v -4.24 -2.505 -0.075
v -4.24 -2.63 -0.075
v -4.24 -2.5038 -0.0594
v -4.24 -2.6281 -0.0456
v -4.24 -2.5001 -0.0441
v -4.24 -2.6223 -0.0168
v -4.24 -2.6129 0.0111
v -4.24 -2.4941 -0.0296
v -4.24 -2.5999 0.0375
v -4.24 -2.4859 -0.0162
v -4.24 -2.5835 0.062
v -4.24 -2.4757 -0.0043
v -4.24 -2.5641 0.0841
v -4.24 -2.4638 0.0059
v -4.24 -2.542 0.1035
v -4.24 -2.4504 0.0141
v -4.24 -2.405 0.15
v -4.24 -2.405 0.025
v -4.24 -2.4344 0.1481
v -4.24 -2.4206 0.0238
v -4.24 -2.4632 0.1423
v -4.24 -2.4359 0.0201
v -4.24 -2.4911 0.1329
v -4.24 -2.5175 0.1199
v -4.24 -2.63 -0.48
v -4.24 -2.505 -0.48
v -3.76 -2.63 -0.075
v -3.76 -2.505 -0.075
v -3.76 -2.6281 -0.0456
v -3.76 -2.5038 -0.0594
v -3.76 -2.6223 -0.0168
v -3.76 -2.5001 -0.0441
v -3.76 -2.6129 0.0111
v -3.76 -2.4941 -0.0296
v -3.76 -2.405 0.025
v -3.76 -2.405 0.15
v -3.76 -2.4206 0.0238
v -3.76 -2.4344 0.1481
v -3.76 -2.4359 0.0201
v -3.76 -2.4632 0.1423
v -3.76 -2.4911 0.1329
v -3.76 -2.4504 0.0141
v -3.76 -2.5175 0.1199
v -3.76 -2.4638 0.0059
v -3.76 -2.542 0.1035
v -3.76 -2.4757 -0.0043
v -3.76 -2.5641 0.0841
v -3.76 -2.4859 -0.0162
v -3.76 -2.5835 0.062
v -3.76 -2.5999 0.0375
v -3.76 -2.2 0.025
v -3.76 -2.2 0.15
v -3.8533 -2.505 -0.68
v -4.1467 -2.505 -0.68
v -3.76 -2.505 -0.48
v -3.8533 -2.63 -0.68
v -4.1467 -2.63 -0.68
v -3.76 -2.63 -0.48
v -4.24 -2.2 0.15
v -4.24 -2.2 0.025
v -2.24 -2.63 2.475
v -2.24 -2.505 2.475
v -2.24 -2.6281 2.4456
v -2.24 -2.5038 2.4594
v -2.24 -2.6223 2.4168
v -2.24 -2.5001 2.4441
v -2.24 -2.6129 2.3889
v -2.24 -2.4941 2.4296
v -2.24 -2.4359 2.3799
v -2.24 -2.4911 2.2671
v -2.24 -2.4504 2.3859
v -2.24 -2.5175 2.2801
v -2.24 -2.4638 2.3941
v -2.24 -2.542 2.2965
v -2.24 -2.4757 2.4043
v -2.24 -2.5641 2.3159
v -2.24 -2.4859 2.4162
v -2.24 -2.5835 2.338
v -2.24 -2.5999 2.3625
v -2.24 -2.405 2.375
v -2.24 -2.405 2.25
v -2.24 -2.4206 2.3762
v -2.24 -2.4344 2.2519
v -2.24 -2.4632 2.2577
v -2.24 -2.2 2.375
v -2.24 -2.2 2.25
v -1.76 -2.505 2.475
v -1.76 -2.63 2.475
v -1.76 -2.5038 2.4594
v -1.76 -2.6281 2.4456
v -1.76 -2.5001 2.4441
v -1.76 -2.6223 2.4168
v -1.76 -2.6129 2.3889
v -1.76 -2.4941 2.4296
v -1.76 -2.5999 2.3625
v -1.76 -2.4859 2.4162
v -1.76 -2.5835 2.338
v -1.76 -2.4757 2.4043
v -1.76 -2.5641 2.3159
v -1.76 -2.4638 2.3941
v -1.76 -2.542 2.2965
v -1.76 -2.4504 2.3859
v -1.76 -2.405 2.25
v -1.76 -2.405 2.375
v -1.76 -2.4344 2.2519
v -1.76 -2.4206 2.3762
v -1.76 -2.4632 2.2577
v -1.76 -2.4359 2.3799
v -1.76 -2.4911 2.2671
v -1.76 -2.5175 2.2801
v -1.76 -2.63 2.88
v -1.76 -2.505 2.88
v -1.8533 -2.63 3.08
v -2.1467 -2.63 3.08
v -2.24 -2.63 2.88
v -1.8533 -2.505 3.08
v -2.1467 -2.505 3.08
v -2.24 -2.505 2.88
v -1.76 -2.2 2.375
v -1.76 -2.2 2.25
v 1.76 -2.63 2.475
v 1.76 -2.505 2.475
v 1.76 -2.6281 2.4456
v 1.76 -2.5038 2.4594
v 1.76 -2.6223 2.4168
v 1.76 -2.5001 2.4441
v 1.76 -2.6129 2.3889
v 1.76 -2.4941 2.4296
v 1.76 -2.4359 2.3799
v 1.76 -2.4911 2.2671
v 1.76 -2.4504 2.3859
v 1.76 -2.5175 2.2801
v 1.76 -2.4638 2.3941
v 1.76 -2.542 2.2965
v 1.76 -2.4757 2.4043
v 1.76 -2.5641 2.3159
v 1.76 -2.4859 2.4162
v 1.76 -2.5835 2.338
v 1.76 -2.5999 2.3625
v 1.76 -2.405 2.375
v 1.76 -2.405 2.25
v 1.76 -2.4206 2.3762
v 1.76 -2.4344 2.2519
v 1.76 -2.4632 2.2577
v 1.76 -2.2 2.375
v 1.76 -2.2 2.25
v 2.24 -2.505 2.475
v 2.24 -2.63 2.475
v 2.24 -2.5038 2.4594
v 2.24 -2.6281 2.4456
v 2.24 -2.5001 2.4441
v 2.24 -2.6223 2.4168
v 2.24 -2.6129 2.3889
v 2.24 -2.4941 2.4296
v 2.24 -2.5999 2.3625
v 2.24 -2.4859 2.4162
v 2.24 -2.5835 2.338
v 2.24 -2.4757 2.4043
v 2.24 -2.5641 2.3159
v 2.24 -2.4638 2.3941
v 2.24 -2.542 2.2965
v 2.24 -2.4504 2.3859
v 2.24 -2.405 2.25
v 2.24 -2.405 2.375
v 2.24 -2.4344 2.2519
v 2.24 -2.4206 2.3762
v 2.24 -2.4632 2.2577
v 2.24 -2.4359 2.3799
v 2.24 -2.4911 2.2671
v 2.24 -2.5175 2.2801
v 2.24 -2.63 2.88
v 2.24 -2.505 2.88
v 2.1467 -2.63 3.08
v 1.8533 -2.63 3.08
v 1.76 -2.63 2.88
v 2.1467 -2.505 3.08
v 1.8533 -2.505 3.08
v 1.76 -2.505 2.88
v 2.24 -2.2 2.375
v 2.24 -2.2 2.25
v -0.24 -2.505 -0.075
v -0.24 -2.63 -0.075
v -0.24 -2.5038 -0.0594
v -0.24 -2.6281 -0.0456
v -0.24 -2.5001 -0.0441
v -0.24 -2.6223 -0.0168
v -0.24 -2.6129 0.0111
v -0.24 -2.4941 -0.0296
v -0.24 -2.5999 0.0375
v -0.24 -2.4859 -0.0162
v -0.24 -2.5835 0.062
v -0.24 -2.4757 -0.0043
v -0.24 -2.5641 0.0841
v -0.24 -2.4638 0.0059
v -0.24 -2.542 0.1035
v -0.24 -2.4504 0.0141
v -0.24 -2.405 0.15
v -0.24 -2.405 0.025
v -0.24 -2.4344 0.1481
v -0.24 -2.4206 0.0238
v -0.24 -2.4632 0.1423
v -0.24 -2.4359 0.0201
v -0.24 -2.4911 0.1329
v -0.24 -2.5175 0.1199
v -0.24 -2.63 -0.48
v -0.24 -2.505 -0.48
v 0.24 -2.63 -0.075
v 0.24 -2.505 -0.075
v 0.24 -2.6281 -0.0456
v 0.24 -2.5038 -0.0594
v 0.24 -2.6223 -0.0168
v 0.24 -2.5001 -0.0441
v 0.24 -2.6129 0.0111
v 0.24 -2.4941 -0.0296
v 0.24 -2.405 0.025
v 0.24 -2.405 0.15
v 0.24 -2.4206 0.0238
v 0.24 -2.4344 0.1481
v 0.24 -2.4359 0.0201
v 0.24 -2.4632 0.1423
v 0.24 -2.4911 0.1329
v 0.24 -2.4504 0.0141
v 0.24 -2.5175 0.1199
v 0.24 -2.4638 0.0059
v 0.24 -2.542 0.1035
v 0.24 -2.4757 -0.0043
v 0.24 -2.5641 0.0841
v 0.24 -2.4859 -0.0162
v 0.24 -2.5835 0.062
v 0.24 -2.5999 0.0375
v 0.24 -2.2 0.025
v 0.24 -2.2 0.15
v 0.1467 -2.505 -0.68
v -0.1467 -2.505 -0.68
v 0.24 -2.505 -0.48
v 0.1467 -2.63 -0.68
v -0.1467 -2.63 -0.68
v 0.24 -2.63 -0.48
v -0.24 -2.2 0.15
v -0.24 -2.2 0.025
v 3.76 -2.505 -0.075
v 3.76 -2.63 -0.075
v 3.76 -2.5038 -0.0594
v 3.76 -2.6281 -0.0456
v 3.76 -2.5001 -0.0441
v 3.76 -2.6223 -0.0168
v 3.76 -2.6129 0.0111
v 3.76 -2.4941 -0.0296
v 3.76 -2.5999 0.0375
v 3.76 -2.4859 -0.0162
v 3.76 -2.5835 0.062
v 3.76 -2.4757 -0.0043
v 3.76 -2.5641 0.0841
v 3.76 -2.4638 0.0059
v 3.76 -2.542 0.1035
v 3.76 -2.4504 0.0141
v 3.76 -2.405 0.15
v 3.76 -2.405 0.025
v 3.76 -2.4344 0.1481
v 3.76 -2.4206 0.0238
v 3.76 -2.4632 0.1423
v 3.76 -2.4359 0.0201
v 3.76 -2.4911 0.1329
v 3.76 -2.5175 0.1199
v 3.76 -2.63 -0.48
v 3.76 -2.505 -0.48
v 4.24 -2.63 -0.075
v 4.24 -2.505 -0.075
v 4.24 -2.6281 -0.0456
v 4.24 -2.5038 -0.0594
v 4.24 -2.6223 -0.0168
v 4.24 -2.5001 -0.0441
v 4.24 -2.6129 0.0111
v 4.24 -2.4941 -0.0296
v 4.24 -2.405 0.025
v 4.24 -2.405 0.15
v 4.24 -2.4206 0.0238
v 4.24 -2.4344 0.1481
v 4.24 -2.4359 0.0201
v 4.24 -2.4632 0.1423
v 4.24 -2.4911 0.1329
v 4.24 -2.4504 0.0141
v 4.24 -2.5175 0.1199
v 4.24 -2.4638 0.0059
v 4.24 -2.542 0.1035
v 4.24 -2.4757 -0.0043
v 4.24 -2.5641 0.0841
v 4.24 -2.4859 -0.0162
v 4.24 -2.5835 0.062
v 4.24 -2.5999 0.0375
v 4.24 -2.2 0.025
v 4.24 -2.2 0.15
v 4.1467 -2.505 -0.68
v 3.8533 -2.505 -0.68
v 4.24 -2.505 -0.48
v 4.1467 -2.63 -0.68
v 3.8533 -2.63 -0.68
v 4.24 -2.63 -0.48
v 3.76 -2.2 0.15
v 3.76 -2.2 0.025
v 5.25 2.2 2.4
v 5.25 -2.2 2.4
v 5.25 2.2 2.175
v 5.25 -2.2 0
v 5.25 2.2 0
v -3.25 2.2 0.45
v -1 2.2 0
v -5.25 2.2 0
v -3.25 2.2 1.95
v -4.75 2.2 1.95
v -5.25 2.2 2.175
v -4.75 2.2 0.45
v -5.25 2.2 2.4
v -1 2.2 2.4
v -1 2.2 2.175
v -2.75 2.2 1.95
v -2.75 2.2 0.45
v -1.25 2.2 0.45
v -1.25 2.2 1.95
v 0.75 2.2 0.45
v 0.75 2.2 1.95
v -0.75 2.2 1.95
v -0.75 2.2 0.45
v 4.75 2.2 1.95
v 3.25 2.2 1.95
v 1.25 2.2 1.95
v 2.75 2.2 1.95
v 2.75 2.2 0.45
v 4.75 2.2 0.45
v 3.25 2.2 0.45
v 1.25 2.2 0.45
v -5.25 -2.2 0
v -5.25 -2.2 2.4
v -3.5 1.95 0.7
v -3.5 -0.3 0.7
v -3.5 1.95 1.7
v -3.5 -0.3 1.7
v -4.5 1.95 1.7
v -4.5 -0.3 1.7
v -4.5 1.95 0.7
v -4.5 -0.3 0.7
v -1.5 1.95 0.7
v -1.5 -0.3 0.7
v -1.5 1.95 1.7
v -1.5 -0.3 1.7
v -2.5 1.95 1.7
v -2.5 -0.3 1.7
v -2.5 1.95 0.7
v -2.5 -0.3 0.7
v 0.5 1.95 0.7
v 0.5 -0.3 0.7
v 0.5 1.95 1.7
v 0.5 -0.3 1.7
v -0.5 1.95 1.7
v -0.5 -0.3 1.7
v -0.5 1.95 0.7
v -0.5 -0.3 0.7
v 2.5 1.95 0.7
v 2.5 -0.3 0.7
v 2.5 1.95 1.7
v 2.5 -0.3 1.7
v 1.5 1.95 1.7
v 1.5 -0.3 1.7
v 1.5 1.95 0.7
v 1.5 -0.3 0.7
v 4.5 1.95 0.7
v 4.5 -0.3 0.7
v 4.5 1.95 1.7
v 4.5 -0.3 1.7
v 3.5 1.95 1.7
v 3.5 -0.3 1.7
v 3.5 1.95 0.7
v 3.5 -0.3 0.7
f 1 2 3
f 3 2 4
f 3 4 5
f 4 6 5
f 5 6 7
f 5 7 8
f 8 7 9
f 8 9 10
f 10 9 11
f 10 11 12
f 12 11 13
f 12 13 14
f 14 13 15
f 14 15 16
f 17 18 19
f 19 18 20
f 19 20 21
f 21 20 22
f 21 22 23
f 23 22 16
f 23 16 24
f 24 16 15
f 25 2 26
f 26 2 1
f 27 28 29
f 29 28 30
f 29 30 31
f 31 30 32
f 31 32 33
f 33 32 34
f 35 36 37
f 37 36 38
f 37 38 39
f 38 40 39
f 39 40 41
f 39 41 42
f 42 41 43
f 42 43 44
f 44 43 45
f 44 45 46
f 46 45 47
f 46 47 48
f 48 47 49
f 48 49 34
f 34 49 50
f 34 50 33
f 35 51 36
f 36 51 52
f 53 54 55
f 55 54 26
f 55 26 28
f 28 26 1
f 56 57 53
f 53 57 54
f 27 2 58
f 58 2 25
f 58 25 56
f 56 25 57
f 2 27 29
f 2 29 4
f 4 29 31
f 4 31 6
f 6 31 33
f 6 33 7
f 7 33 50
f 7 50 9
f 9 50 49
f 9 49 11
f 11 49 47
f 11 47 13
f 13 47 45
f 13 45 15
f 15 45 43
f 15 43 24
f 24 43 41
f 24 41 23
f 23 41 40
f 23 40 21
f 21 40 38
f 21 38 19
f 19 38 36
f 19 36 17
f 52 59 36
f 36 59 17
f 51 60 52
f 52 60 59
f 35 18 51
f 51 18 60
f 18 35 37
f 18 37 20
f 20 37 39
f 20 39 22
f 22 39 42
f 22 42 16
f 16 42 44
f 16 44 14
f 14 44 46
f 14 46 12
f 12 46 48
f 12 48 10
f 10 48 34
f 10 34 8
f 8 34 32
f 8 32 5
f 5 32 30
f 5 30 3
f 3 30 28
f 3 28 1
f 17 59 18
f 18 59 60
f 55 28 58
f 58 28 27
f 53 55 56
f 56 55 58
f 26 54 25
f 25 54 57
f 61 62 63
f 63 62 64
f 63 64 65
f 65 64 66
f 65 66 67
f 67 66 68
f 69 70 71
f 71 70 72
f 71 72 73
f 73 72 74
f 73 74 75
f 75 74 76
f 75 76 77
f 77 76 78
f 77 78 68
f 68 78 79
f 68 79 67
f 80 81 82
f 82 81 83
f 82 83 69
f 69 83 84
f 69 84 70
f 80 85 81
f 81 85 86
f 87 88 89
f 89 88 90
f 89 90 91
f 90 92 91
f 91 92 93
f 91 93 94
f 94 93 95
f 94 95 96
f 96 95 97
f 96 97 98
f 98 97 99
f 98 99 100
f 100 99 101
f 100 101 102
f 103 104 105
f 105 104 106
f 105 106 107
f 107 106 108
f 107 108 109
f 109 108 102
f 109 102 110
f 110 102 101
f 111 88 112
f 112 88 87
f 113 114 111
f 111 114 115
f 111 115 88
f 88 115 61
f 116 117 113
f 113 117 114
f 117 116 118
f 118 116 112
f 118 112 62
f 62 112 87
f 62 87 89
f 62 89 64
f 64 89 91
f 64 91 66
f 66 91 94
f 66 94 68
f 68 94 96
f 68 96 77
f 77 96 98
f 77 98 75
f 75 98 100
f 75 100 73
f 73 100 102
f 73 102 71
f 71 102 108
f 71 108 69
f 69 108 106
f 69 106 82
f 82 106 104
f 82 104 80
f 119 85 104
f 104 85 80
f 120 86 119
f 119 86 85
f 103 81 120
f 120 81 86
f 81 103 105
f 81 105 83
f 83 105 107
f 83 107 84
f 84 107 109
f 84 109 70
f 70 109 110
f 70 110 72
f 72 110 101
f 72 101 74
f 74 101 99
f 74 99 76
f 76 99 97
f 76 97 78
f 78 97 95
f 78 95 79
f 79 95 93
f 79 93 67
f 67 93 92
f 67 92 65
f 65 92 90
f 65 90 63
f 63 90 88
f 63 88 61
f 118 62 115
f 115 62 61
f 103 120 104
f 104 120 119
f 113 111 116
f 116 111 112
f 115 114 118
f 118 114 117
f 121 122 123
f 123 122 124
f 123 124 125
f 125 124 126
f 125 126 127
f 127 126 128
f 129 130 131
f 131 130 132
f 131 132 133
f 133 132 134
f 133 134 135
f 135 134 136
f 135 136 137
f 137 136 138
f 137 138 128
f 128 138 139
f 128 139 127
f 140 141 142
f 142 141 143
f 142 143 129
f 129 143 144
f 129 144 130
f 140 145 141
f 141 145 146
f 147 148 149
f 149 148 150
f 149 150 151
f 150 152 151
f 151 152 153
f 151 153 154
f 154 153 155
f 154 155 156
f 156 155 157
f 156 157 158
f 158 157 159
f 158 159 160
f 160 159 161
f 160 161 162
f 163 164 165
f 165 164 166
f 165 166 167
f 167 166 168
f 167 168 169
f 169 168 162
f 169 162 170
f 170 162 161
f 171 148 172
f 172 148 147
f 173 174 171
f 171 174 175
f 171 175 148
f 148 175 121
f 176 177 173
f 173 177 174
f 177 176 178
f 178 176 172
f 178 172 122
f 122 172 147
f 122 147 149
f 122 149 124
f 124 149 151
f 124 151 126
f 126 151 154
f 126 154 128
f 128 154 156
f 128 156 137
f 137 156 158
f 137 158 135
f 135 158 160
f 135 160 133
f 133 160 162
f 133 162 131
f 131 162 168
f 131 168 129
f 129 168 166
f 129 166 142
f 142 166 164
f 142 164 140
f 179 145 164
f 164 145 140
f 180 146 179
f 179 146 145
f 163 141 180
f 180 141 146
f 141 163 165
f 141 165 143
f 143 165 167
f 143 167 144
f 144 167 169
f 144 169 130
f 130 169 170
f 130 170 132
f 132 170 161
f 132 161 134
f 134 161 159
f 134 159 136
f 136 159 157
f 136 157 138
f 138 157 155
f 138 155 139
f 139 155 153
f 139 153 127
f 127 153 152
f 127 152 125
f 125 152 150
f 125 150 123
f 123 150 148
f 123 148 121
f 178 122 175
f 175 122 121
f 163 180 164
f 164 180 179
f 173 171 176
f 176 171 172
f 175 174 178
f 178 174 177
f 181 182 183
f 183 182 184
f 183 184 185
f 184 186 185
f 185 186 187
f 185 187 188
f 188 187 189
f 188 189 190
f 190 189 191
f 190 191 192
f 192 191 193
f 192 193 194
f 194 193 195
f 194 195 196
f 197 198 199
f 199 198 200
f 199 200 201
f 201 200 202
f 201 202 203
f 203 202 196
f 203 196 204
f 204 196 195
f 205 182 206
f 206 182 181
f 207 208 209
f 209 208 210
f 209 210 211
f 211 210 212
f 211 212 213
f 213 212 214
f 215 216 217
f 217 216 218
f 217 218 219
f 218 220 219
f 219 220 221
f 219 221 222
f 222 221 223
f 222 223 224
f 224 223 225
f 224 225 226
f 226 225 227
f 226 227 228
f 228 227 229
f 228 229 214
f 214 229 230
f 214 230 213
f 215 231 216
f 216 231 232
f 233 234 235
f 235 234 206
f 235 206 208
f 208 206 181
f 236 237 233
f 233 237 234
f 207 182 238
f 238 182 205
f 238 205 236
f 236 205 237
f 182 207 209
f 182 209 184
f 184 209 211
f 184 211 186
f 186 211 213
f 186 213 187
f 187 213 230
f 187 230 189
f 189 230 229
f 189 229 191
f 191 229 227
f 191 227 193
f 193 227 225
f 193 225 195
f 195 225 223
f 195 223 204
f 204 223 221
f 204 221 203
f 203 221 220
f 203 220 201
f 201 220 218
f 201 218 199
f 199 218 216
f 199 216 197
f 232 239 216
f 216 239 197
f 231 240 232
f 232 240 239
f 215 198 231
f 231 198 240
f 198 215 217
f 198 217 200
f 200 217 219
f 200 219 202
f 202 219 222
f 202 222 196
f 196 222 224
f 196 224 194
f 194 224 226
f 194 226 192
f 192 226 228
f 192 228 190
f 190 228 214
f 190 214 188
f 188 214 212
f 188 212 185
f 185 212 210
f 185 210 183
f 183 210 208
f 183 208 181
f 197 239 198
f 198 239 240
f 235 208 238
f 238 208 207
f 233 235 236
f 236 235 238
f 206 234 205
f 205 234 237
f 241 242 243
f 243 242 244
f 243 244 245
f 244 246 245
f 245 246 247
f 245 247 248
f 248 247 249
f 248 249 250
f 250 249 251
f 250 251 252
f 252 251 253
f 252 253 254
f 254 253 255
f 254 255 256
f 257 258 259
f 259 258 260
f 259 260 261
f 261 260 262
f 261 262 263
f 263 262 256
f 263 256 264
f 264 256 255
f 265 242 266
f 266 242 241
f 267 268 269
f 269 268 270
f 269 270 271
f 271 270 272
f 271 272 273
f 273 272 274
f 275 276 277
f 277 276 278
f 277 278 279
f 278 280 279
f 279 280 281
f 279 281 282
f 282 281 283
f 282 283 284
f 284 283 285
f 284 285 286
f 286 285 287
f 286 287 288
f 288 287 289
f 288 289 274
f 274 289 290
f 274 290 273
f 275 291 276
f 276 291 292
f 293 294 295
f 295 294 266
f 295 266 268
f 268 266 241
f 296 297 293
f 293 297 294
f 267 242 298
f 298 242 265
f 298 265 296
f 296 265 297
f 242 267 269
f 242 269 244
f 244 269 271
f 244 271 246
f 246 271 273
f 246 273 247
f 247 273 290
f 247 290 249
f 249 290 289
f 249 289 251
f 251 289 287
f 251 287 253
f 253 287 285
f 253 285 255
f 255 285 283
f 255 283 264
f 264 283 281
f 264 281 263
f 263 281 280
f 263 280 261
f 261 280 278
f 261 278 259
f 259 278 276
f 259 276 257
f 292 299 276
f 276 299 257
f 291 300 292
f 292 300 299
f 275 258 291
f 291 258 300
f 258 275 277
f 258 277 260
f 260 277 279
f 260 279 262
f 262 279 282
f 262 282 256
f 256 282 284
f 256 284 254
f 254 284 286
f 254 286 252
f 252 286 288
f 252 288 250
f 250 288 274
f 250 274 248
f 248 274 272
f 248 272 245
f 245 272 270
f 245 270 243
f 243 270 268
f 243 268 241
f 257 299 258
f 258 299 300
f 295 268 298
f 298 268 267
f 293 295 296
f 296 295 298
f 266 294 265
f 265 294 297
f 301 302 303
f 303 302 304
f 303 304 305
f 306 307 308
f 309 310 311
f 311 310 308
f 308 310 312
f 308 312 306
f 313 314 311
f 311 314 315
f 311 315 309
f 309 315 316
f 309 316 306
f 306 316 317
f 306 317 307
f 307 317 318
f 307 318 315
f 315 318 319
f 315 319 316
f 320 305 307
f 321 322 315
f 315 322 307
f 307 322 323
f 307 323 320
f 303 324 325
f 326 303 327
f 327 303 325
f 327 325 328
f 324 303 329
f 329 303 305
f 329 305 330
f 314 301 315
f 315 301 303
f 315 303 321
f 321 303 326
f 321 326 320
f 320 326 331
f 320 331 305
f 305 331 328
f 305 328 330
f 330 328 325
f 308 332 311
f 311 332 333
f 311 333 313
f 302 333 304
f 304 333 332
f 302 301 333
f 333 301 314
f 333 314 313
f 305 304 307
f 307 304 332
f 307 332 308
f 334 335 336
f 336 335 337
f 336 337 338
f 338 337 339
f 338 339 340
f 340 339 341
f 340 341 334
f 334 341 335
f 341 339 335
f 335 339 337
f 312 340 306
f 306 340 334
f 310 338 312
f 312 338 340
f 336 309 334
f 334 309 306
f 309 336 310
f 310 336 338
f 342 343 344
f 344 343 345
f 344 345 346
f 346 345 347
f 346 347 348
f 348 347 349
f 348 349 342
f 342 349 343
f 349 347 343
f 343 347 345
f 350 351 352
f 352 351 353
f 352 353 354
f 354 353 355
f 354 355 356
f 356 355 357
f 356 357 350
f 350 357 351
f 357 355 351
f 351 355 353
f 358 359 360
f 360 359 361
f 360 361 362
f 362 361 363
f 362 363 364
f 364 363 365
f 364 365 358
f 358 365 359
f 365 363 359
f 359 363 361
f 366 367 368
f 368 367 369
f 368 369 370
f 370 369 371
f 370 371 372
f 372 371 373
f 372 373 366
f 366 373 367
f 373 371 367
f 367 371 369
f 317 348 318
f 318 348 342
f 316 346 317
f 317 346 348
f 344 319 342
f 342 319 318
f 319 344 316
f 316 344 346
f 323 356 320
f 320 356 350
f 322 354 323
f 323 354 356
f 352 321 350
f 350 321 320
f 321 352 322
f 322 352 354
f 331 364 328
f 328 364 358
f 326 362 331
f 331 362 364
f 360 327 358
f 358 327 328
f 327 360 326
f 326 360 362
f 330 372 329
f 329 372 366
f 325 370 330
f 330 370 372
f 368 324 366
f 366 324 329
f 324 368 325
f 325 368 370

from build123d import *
from OCP.BRepFilletAPI import BRepFilletAPI_MakeChamfer

# Parameters (mm, degrees)
SKETCH1_W                  = 10.5
SKETCH1_H                  = 4.4
BOSS_EXTRUDE1_DEPTH        = 2.4
SKETCH2_W                  = 1
SKETCH2_H                  = 1
CUT_EXTRUDE1_DEPTH         = 2.5
CHAMFER1_SIZE              = 0.25
LPATTERN6_COUNT            = 5
LPATTERN6_PITCH            = 2
CHAMFER1_OF_LPATTERN6_SIZE = 0.25
BASE_FLANGE2_DEPTH         = 0.24
BASE_FLANGE2_DEPTH_BACK    = 0.24
BASE_FLANGE3_DEPTH         = 0.24
BASE_FLANGE3_DEPTH_BACK    = 0.24
CHAMFER3_SIZE              = 0.2
CHAMFER3_SIZE2             = 0.093261532
CHAMFER4_SIZE              = 0.2
CHAMFER4_SIZE2             = 0.093261532
LPATTERN4_COUNT            = 3
LPATTERN4_PITCH            = 4
LPATTERN3_COUNT            = 2
LPATTERN3_PITCH            = 4


# Sheet-metal steps are written as plain solids
with BuildPart() as part:
    # Sketch1 → Boss-Extrude1 (new body)
    with BuildSketch(Plane.XY):
        Rectangle(SKETCH1_W, SKETCH1_H)
    extrude(amount=BOSS_EXTRUDE1_DEPTH)

    # Sketch2 → Cut-Extrude1 (cut)
    with BuildSketch(Plane(origin=(0, 2.2, 0), x_dir=(1, 0, 0), z_dir=(0, 1, 0))):
        with Locations((-4, -1.2)):
            Rectangle(SKETCH2_W, SKETCH2_H)
    cut_extrude1 = extrude(amount=-CUT_EXTRUDE1_DEPTH, mode=Mode.SUBTRACT)

    # Chamfer1
    chamfer1_edges = [part.edges().sort_by_distance(p)[0] for p in [
        (-3.5, 2.2, 1.2),
        (-4, 2.2, 0.7),
        (-4.5, 2.2, 1.2),
        (-4, 2.2, 1.7),
    ]]
    chamfer(chamfer1_edges, length=CHAMFER1_SIZE)

    # LPattern6: Cut-Extrude1 ×5
    with Locations(*[(i * LPATTERN6_PITCH, 0, 0) for i in range(1, LPATTERN6_COUNT)]):
        add(cut_extrude1, mode=Mode.SUBTRACT)

    # Chamfer1 of LPattern6
    chamfer1_of_lpattern6_edges = [part.edges().sort_by_distance(p)[0] for p in [
        (-1.5, 2.2, 1.2),
        (-2, 2.2, 0.7),
        (-2.5, 2.2, 1.2),
        (-2, 2.2, 1.7),
        (0.5, 2.2, 1.2),
        (0, 2.2, 0.7),
        (-0.5, 2.2, 1.2),
        (0, 2.2, 1.7),
        (2.5, 2.2, 1.2),
        (2, 2.2, 0.7),
        (1.5, 2.2, 1.2),
        (2, 2.2, 1.7),
        (4.5, 2.2, 1.2),
        (4, 2.2, 0.7),
        (3.5, 2.2, 1.2),
        (4, 2.2, 1.7),
    ]]
    chamfer(chamfer1_of_lpattern6_edges, length=CHAMFER1_OF_LPATTERN6_SIZE)


with BuildPart() as body_2:
    # Sketch5 → Base-Flange2 (new, two sides: drawn at the far end of the back side and taken through both)
    with BuildSketch(Plane.ZY.offset(4).offset(-BASE_FLANGE2_DEPTH_BACK)):
        with BuildLine():
            Line((0.15, -2.2), (0.15, -2.405))
            ThreePointArc((0.15, -2.405), (0.084099026, -2.564099026), (-0.075, -2.63))
            Line((-0.075, -2.63), (-0.68, -2.63))
            Line((-0.68, -2.63), (-0.68, -2.505))
            Line((-0.68, -2.505), (-0.075, -2.505))
            ThreePointArc((-0.075, -2.505), (-0.004289322, -2.475710678), (0.025, -2.405))
            Line((0.025, -2.405), (0.025, -2.2))
            Line((0.025, -2.2), (0.15, -2.2))
        make_face()
    extrude(amount=BASE_FLANGE2_DEPTH + BASE_FLANGE2_DEPTH_BACK)

    # Chamfer4: one chamfer whose edges measure the first distance from different faces: ONE call of the kernel's chamfer builder (chamfer() names one face for all edges)
    chamfer4_edges_1 = [body_2.edges().sort_by_distance(p)[0] for p in [
        (-3.76, -2.5675, -0.68),
    ]]
    chamfer4_side_1 = [body_2.faces().sort_by_distance(p)[0] for p in [
        (-3.76, -2.3025, 0.034347727),
    ]]
    chamfer4_edges_2 = [body_2.edges().sort_by_distance(p)[0] for p in [
        (-4.24, -2.5675, -0.68),
    ]]
    chamfer4_side_2 = [body_2.faces().sort_by_distance(p)[0] for p in [
        (-4.24, -2.3025, 0.034347727),
    ]]
    chamfer4 = BRepFilletAPI_MakeChamfer(body_2.part.solid().wrapped)
    for e in chamfer4_edges_1:
        chamfer4.Add(CHAMFER4_SIZE, CHAMFER4_SIZE2, e.wrapped, chamfer4_side_1[0].wrapped)  # the first distance lies on this face
    for e in chamfer4_edges_2:
        chamfer4.Add(CHAMFER4_SIZE, CHAMFER4_SIZE2, e.wrapped, chamfer4_side_2[0].wrapped)  # the first distance lies on this face
    add(Compound.cast(chamfer4.Shape()), mode=Mode.REPLACE)


with BuildPart() as body_3:
    # Sketch22 → Base-Flange3 (new, two sides: drawn at the far end of the back side and taken through both)
    with BuildSketch(Plane.ZY.offset(2).offset(-BASE_FLANGE3_DEPTH_BACK)):
        with BuildLine():
            Line((2.25, -2.2), (2.25, -2.405))
            ThreePointArc((2.25, -2.405), (2.315900974, -2.564099026), (2.475, -2.63))
            Line((2.475, -2.63), (3.08, -2.63))
            Line((3.08, -2.63), (3.08, -2.505))
            Line((3.08, -2.505), (2.475, -2.505))
            ThreePointArc((2.475, -2.505), (2.404289322, -2.475710678), (2.375, -2.405))
            Line((2.375, -2.405), (2.375, -2.2))
            Line((2.375, -2.2), (2.25, -2.2))
        make_face()
    extrude(amount=BASE_FLANGE3_DEPTH + BASE_FLANGE3_DEPTH_BACK)

    # Chamfer3: one chamfer whose edges measure the first distance from different faces: ONE call of the kernel's chamfer builder (chamfer() names one face for all edges)
    chamfer3_edges_1 = [body_3.edges().sort_by_distance(p)[0] for p in [
        (-1.76, -2.5675, 3.08),
    ]]
    chamfer3_side_1 = [body_3.faces().sort_by_distance(p)[0] for p in [
        (-1.76, -2.3025, 2.365652273),
    ]]
    chamfer3_edges_2 = [body_3.edges().sort_by_distance(p)[0] for p in [
        (-2.24, -2.5675, 3.08),
    ]]
    chamfer3_side_2 = [body_3.faces().sort_by_distance(p)[0] for p in [
        (-2.24, -2.3025, 2.365652273),
    ]]
    chamfer3 = BRepFilletAPI_MakeChamfer(body_3.part.solid().wrapped)
    for e in chamfer3_edges_1:
        chamfer3.Add(CHAMFER3_SIZE, CHAMFER3_SIZE2, e.wrapped, chamfer3_side_1[0].wrapped)  # the first distance lies on this face
    for e in chamfer3_edges_2:
        chamfer3.Add(CHAMFER3_SIZE, CHAMFER3_SIZE2, e.wrapped, chamfer3_side_2[0].wrapped)  # the first distance lies on this face
    add(Compound.cast(chamfer3.Shape()), mode=Mode.REPLACE)


with BuildPart() as lpattern4_1:
    # LPattern4: pattern copy
    add(body_2.part.moved(Location(Vector(1, 0, 0) * (1 * LPATTERN4_PITCH))))


with BuildPart() as lpattern4_2:
    # LPattern4: pattern copy
    add(body_2.part.moved(Location(Vector(1, 0, 0) * (2 * LPATTERN4_PITCH))))


with BuildPart() as lpattern3_1:
    # LPattern3: pattern copy
    add(body_3.part.moved(Location(Vector(1, 0, 0) * (1 * LPATTERN3_PITCH))))


solid = Compound([part.part, body_2.part, body_3.part, lpattern4_1.part, lpattern4_2.part, lpattern3_1.part])
